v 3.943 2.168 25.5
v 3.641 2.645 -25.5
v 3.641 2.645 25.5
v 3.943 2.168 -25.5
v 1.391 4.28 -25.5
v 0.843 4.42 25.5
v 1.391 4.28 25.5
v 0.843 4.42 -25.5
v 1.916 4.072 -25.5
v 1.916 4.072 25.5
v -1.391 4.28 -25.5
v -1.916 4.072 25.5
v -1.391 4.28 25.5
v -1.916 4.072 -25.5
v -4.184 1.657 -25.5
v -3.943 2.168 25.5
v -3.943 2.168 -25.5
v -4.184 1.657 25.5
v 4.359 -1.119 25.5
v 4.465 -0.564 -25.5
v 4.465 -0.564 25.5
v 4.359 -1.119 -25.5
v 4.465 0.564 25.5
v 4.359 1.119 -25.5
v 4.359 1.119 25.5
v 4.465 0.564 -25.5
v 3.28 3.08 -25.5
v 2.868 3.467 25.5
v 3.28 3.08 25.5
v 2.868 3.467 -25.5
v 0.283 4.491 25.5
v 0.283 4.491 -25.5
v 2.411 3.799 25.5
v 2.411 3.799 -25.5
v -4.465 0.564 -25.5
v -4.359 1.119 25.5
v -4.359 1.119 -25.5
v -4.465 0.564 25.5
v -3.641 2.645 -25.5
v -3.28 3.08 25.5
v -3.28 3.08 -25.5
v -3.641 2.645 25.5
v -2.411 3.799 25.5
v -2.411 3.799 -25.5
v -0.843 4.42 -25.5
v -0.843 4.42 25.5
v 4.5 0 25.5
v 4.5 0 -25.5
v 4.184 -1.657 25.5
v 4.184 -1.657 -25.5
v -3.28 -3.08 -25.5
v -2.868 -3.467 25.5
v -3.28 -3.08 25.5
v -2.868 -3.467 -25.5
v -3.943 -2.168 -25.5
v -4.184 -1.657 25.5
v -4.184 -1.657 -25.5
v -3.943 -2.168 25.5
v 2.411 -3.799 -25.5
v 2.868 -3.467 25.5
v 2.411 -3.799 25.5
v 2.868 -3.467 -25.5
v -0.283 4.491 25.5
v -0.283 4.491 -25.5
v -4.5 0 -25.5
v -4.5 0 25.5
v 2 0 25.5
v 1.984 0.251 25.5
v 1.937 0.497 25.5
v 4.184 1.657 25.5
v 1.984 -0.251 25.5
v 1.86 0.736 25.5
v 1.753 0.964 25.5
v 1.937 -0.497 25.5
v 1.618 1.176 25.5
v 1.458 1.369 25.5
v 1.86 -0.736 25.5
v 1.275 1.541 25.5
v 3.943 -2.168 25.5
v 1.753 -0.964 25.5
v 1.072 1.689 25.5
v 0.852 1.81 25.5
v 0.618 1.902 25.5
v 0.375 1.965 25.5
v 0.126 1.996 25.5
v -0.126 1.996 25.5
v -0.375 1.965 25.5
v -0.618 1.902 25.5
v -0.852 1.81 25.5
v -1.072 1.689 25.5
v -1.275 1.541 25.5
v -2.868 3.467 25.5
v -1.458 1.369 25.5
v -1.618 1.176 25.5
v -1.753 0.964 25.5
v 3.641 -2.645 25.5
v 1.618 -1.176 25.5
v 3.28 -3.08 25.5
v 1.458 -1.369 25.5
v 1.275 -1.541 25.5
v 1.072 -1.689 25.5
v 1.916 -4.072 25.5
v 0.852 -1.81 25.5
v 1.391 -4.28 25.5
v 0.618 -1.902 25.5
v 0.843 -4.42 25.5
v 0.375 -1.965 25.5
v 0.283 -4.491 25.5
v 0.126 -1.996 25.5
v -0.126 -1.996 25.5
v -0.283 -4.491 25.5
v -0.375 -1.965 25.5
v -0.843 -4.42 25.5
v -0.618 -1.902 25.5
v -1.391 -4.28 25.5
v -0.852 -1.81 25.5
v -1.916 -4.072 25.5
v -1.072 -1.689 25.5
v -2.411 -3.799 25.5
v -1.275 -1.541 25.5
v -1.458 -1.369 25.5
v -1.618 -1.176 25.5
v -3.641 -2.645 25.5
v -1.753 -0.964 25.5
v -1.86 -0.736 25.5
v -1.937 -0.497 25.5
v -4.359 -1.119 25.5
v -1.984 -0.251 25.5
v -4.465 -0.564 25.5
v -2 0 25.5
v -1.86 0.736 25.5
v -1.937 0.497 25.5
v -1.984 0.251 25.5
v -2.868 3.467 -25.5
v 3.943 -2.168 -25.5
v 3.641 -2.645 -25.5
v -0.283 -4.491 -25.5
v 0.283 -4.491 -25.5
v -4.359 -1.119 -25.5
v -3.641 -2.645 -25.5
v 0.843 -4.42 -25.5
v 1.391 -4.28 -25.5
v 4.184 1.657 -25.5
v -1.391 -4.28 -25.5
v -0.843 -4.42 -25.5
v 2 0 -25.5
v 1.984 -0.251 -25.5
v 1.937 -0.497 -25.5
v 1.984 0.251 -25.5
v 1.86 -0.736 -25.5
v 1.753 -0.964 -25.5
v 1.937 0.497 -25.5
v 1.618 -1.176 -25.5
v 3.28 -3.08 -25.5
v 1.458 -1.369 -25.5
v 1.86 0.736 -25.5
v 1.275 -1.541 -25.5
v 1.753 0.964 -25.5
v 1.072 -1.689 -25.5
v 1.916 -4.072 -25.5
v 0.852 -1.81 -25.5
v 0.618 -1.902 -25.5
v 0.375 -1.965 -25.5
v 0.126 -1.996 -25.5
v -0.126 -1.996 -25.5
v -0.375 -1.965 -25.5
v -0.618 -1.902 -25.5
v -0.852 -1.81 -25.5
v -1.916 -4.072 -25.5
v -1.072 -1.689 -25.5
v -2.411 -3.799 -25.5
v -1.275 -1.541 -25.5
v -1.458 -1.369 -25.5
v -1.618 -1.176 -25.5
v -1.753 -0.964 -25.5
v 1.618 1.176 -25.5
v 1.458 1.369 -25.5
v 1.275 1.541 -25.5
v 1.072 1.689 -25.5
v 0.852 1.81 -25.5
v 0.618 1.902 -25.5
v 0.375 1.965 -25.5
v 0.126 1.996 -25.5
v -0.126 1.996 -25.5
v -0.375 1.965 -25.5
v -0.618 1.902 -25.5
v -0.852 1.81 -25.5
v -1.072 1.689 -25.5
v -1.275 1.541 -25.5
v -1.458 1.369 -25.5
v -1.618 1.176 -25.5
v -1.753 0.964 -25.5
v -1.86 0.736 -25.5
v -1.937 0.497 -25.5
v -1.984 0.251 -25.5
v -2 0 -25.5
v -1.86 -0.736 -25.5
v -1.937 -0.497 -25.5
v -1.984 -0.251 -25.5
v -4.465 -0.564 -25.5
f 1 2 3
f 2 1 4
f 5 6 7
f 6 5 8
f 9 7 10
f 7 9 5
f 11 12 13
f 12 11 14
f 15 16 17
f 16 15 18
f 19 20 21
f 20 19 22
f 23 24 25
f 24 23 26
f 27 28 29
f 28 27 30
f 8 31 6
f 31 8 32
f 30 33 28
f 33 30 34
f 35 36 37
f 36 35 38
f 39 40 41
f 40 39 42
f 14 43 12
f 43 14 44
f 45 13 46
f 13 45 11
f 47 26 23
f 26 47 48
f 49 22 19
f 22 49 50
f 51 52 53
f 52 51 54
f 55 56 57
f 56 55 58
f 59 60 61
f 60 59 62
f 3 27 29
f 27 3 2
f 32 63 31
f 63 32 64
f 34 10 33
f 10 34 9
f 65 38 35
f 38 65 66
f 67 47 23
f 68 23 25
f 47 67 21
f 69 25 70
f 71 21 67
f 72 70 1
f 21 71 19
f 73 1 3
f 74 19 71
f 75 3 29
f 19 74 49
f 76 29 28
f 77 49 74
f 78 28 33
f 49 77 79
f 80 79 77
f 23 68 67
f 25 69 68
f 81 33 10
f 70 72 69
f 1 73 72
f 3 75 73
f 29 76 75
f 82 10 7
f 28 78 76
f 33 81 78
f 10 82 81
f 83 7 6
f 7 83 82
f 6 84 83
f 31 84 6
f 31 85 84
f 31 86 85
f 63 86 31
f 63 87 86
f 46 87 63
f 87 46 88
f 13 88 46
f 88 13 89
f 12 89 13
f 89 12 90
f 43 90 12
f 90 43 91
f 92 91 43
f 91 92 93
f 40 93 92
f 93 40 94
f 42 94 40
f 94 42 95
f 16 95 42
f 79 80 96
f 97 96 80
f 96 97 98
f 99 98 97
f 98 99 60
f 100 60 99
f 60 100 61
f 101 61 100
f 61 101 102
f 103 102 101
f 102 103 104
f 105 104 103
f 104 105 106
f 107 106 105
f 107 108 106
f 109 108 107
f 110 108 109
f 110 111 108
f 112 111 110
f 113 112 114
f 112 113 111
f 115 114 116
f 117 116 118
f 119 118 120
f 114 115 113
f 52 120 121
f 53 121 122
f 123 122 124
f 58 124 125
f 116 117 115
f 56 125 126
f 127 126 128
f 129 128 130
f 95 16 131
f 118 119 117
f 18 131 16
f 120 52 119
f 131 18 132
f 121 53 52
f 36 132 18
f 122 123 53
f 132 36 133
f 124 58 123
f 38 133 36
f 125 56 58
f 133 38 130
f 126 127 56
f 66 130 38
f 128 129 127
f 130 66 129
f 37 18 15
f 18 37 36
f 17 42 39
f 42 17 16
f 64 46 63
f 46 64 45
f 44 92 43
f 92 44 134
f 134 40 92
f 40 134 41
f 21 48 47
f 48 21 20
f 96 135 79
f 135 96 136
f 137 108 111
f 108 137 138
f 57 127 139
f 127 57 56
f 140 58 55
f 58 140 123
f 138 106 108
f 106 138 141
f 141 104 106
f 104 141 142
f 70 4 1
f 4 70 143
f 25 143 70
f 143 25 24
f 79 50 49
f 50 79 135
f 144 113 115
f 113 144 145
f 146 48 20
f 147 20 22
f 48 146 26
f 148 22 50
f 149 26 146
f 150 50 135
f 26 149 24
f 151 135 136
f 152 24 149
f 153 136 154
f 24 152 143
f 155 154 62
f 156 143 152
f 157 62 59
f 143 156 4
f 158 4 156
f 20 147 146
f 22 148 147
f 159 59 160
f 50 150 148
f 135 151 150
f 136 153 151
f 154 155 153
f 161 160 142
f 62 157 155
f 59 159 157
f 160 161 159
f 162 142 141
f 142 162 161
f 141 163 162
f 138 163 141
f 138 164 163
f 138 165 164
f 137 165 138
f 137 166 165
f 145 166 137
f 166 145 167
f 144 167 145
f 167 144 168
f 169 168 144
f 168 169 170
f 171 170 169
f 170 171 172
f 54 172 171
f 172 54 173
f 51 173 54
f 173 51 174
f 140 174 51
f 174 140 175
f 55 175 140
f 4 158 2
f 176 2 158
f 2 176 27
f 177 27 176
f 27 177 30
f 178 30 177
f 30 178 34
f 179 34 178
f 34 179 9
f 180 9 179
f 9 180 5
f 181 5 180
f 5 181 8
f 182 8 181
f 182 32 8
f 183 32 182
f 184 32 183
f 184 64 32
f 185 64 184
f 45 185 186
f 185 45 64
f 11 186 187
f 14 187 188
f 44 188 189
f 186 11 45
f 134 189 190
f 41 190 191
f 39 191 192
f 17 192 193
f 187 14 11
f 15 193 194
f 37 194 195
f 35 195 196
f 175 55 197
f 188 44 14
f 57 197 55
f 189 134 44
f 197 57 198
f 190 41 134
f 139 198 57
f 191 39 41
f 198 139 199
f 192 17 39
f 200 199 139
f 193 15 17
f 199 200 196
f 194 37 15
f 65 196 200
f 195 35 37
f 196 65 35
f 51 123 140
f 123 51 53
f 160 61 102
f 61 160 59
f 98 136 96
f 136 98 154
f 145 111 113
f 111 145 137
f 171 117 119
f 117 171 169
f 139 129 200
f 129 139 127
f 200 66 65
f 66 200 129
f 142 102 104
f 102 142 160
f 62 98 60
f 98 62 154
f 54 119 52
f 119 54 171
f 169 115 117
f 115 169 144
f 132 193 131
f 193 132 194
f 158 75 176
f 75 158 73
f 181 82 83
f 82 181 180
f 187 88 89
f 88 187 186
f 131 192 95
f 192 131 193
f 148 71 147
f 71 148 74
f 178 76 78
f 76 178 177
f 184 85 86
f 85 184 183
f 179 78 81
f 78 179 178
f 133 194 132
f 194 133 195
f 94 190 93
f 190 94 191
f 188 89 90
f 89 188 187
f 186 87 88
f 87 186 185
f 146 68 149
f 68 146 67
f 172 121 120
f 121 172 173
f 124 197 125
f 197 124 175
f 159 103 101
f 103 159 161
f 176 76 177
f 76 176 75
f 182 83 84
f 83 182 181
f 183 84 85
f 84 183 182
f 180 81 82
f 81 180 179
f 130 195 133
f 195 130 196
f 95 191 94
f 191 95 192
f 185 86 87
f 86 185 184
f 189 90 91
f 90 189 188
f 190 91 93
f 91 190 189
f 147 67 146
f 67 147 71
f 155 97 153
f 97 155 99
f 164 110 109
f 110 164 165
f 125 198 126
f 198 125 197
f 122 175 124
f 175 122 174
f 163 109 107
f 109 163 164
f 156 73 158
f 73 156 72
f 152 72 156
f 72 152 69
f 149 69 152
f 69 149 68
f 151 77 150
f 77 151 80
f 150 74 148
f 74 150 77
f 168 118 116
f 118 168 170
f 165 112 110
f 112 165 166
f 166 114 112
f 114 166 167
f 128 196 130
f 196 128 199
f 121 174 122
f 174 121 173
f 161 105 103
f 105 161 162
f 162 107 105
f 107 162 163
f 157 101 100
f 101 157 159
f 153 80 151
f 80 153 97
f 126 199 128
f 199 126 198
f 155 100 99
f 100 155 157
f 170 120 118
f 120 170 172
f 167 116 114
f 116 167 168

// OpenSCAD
$fn = 50;


difference() {
	union() {
		translate(v = [0, 0, -25.5000000000]) {
			cylinder(h = 51, r = 4.5000000000);
		}
	}
	union() {
		translate(v = [0, 0, -100.0000000000]) {
			cylinder(h = 200, r = 2);
		}
	}
}
